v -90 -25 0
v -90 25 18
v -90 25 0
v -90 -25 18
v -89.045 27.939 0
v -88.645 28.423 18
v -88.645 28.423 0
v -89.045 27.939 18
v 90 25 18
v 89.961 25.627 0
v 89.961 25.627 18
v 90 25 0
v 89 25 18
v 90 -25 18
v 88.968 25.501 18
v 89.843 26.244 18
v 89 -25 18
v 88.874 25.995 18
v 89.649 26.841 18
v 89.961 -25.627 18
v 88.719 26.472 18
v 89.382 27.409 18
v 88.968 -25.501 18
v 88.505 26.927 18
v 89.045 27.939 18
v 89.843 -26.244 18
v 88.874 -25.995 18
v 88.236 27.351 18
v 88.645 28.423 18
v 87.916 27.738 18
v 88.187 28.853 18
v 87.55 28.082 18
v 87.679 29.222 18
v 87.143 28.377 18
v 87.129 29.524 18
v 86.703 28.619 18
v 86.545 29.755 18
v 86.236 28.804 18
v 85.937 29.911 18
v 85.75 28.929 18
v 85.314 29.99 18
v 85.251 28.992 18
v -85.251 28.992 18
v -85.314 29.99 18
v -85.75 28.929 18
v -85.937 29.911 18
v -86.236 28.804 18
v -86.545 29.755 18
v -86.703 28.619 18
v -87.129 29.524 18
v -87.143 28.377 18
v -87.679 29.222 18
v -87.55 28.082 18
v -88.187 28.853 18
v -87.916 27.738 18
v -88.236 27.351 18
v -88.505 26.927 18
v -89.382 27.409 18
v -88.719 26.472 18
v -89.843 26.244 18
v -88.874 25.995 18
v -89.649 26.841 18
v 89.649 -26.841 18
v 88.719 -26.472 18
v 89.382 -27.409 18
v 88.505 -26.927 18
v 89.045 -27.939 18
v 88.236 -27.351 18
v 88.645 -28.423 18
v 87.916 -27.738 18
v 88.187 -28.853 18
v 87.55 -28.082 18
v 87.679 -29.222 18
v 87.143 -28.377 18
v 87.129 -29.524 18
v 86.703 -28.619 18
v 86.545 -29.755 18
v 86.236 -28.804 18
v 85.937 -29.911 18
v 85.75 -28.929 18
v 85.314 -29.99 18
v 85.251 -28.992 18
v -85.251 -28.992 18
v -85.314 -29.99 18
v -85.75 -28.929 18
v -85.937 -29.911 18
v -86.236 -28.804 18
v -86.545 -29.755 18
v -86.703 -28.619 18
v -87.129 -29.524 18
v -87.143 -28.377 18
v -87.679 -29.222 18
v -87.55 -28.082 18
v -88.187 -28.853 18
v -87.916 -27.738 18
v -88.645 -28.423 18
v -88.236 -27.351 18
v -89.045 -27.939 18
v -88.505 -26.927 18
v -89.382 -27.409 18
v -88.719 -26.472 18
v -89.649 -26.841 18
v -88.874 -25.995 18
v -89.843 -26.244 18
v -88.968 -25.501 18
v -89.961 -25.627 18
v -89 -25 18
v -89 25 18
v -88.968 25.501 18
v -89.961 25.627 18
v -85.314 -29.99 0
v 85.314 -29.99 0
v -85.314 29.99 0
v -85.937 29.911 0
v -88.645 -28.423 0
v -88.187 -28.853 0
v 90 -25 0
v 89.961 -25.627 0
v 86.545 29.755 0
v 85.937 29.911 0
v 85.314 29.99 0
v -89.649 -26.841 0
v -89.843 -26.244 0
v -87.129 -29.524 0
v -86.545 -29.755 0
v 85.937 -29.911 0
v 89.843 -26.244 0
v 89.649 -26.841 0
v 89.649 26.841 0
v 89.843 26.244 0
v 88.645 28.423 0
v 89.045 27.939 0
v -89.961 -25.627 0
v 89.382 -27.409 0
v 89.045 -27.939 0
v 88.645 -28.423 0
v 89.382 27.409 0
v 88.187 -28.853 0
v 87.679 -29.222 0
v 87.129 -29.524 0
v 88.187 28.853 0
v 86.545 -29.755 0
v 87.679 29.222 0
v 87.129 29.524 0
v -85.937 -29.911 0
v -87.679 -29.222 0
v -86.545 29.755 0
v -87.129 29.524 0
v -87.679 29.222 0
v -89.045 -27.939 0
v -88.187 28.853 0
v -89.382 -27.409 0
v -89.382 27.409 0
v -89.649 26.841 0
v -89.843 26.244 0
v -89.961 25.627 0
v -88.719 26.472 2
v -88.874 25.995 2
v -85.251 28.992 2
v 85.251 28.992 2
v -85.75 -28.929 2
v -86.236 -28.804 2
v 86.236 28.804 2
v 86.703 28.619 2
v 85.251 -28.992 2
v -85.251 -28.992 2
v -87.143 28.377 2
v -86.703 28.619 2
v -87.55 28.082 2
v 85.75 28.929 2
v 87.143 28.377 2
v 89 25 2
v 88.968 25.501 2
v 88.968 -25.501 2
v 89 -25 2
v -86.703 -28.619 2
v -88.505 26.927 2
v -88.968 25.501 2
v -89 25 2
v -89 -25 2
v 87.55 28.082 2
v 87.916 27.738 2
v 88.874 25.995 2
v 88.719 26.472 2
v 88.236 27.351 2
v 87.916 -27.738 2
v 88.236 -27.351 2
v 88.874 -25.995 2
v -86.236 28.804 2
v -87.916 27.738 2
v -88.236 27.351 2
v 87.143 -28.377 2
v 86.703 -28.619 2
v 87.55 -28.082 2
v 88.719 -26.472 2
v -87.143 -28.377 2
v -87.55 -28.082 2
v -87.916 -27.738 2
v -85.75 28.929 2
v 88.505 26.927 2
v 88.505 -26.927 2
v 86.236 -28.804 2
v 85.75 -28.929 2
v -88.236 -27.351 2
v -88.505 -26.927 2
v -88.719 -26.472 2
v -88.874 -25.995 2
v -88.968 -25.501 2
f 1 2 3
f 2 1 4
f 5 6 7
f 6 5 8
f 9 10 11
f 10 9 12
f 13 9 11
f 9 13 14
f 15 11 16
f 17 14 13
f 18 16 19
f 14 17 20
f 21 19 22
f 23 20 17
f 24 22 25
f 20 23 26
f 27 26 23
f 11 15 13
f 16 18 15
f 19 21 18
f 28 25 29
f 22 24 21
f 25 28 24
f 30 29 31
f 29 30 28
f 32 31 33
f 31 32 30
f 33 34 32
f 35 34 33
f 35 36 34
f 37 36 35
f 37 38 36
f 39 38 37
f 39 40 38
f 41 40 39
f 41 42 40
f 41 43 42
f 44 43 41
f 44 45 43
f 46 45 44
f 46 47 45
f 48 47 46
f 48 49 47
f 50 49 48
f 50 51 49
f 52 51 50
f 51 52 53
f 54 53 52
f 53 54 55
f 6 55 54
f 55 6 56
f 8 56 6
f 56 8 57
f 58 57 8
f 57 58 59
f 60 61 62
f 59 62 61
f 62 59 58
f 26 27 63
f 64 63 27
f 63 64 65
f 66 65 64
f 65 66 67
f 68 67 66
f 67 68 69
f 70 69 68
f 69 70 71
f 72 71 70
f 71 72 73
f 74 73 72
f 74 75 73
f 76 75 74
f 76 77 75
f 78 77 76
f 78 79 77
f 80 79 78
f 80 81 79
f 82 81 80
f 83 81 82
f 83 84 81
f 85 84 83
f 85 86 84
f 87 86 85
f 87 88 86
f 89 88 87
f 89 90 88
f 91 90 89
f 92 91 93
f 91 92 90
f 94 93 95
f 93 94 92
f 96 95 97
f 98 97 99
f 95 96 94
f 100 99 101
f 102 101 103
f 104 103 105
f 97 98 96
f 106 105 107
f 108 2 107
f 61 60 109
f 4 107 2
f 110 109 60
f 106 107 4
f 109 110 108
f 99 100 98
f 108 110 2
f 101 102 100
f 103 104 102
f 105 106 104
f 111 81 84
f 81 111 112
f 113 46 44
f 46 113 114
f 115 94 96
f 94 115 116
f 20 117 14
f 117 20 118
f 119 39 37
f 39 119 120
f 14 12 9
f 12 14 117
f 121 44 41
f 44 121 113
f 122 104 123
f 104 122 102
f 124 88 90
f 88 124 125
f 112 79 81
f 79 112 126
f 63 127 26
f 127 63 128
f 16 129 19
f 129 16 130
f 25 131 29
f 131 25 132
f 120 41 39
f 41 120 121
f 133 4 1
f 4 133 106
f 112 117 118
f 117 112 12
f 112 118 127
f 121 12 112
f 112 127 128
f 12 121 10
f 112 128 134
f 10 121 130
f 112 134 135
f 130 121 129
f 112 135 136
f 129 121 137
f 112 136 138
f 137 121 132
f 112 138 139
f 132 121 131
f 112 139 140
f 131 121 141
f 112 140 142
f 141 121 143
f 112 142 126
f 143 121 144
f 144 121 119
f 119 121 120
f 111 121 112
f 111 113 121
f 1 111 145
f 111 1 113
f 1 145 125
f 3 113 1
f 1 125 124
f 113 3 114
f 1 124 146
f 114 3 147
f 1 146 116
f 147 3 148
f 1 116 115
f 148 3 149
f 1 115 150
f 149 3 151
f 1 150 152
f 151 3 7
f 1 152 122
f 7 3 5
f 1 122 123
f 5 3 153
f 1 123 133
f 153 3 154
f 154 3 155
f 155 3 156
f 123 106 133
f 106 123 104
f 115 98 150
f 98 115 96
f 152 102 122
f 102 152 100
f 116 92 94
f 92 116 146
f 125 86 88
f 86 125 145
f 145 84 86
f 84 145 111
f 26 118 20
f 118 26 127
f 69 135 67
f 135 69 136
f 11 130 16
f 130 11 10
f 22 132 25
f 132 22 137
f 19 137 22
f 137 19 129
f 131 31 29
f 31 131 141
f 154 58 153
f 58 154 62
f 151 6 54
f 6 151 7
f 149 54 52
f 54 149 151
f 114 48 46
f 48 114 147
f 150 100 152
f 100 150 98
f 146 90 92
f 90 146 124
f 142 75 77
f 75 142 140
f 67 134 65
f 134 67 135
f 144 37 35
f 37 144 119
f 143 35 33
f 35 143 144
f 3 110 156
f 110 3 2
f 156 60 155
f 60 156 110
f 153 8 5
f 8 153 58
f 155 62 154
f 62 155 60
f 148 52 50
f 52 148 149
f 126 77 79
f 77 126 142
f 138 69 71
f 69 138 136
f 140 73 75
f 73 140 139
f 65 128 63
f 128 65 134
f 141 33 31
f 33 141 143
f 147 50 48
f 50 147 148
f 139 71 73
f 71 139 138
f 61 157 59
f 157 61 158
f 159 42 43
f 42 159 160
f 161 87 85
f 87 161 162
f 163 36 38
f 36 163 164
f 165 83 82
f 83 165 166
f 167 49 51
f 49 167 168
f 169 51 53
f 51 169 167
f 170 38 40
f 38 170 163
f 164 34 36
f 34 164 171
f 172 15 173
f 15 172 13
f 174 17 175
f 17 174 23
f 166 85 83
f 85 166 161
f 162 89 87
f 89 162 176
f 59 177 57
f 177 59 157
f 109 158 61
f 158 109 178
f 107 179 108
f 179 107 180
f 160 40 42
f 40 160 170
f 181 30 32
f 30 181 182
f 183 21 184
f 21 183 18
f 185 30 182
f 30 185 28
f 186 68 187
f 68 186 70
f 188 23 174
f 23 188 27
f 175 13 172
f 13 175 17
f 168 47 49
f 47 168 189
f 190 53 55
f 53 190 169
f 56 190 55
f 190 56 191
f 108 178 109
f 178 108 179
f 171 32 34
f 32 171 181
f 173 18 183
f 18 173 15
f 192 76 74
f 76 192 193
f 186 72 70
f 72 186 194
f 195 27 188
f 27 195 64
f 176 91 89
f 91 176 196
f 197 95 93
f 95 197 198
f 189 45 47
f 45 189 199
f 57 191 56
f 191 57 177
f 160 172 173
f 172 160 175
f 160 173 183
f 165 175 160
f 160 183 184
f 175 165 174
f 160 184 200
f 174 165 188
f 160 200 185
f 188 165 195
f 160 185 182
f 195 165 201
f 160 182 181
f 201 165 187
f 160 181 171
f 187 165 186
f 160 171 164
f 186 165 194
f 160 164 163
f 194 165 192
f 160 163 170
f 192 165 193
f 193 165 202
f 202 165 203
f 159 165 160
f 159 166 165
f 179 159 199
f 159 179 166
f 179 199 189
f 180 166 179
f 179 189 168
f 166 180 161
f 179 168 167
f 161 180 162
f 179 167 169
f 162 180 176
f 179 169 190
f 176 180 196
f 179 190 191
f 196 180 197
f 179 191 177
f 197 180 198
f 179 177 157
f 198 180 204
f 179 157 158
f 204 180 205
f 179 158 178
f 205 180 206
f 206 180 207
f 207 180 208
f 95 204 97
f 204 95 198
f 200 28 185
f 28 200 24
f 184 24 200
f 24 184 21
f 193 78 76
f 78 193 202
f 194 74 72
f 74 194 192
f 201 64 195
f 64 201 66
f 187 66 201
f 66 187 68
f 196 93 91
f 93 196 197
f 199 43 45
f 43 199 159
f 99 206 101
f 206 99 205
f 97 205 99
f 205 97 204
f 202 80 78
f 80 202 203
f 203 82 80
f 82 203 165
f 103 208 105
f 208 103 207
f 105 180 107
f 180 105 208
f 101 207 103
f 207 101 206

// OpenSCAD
$fn = 50;


difference() {
	union() {
		hull() {
			translate(v = [-85.0000000000, 25.0000000000, 0]) {
				cylinder(h = 18, r = 5);
			}
			translate(v = [85.0000000000, 25.0000000000, 0]) {
				cylinder(h = 18, r = 5);
			}
			translate(v = [-85.0000000000, -25.0000000000, 0]) {
				cylinder(h = 18, r = 5);
			}
			translate(v = [85.0000000000, -25.0000000000, 0]) {
				cylinder(h = 18, r = 5);
			}
		}
	}
	union() {
		translate(v = [0, 0, 2]) {
			hull() {
				translate(v = [-85.0000000000, 25.0000000000, 0]) {
					cylinder(h = 16, r = 4);
				}
				translate(v = [85.0000000000, 25.0000000000, 0]) {
					cylinder(h = 16, r = 4);
				}
				translate(v = [-85.0000000000, -25.0000000000, 0]) {
					cylinder(h = 16, r = 4);
				}
				translate(v = [85.0000000000, -25.0000000000, 0]) {
					cylinder(h = 16, r = 4);
				}
			}
		}
	}
}
